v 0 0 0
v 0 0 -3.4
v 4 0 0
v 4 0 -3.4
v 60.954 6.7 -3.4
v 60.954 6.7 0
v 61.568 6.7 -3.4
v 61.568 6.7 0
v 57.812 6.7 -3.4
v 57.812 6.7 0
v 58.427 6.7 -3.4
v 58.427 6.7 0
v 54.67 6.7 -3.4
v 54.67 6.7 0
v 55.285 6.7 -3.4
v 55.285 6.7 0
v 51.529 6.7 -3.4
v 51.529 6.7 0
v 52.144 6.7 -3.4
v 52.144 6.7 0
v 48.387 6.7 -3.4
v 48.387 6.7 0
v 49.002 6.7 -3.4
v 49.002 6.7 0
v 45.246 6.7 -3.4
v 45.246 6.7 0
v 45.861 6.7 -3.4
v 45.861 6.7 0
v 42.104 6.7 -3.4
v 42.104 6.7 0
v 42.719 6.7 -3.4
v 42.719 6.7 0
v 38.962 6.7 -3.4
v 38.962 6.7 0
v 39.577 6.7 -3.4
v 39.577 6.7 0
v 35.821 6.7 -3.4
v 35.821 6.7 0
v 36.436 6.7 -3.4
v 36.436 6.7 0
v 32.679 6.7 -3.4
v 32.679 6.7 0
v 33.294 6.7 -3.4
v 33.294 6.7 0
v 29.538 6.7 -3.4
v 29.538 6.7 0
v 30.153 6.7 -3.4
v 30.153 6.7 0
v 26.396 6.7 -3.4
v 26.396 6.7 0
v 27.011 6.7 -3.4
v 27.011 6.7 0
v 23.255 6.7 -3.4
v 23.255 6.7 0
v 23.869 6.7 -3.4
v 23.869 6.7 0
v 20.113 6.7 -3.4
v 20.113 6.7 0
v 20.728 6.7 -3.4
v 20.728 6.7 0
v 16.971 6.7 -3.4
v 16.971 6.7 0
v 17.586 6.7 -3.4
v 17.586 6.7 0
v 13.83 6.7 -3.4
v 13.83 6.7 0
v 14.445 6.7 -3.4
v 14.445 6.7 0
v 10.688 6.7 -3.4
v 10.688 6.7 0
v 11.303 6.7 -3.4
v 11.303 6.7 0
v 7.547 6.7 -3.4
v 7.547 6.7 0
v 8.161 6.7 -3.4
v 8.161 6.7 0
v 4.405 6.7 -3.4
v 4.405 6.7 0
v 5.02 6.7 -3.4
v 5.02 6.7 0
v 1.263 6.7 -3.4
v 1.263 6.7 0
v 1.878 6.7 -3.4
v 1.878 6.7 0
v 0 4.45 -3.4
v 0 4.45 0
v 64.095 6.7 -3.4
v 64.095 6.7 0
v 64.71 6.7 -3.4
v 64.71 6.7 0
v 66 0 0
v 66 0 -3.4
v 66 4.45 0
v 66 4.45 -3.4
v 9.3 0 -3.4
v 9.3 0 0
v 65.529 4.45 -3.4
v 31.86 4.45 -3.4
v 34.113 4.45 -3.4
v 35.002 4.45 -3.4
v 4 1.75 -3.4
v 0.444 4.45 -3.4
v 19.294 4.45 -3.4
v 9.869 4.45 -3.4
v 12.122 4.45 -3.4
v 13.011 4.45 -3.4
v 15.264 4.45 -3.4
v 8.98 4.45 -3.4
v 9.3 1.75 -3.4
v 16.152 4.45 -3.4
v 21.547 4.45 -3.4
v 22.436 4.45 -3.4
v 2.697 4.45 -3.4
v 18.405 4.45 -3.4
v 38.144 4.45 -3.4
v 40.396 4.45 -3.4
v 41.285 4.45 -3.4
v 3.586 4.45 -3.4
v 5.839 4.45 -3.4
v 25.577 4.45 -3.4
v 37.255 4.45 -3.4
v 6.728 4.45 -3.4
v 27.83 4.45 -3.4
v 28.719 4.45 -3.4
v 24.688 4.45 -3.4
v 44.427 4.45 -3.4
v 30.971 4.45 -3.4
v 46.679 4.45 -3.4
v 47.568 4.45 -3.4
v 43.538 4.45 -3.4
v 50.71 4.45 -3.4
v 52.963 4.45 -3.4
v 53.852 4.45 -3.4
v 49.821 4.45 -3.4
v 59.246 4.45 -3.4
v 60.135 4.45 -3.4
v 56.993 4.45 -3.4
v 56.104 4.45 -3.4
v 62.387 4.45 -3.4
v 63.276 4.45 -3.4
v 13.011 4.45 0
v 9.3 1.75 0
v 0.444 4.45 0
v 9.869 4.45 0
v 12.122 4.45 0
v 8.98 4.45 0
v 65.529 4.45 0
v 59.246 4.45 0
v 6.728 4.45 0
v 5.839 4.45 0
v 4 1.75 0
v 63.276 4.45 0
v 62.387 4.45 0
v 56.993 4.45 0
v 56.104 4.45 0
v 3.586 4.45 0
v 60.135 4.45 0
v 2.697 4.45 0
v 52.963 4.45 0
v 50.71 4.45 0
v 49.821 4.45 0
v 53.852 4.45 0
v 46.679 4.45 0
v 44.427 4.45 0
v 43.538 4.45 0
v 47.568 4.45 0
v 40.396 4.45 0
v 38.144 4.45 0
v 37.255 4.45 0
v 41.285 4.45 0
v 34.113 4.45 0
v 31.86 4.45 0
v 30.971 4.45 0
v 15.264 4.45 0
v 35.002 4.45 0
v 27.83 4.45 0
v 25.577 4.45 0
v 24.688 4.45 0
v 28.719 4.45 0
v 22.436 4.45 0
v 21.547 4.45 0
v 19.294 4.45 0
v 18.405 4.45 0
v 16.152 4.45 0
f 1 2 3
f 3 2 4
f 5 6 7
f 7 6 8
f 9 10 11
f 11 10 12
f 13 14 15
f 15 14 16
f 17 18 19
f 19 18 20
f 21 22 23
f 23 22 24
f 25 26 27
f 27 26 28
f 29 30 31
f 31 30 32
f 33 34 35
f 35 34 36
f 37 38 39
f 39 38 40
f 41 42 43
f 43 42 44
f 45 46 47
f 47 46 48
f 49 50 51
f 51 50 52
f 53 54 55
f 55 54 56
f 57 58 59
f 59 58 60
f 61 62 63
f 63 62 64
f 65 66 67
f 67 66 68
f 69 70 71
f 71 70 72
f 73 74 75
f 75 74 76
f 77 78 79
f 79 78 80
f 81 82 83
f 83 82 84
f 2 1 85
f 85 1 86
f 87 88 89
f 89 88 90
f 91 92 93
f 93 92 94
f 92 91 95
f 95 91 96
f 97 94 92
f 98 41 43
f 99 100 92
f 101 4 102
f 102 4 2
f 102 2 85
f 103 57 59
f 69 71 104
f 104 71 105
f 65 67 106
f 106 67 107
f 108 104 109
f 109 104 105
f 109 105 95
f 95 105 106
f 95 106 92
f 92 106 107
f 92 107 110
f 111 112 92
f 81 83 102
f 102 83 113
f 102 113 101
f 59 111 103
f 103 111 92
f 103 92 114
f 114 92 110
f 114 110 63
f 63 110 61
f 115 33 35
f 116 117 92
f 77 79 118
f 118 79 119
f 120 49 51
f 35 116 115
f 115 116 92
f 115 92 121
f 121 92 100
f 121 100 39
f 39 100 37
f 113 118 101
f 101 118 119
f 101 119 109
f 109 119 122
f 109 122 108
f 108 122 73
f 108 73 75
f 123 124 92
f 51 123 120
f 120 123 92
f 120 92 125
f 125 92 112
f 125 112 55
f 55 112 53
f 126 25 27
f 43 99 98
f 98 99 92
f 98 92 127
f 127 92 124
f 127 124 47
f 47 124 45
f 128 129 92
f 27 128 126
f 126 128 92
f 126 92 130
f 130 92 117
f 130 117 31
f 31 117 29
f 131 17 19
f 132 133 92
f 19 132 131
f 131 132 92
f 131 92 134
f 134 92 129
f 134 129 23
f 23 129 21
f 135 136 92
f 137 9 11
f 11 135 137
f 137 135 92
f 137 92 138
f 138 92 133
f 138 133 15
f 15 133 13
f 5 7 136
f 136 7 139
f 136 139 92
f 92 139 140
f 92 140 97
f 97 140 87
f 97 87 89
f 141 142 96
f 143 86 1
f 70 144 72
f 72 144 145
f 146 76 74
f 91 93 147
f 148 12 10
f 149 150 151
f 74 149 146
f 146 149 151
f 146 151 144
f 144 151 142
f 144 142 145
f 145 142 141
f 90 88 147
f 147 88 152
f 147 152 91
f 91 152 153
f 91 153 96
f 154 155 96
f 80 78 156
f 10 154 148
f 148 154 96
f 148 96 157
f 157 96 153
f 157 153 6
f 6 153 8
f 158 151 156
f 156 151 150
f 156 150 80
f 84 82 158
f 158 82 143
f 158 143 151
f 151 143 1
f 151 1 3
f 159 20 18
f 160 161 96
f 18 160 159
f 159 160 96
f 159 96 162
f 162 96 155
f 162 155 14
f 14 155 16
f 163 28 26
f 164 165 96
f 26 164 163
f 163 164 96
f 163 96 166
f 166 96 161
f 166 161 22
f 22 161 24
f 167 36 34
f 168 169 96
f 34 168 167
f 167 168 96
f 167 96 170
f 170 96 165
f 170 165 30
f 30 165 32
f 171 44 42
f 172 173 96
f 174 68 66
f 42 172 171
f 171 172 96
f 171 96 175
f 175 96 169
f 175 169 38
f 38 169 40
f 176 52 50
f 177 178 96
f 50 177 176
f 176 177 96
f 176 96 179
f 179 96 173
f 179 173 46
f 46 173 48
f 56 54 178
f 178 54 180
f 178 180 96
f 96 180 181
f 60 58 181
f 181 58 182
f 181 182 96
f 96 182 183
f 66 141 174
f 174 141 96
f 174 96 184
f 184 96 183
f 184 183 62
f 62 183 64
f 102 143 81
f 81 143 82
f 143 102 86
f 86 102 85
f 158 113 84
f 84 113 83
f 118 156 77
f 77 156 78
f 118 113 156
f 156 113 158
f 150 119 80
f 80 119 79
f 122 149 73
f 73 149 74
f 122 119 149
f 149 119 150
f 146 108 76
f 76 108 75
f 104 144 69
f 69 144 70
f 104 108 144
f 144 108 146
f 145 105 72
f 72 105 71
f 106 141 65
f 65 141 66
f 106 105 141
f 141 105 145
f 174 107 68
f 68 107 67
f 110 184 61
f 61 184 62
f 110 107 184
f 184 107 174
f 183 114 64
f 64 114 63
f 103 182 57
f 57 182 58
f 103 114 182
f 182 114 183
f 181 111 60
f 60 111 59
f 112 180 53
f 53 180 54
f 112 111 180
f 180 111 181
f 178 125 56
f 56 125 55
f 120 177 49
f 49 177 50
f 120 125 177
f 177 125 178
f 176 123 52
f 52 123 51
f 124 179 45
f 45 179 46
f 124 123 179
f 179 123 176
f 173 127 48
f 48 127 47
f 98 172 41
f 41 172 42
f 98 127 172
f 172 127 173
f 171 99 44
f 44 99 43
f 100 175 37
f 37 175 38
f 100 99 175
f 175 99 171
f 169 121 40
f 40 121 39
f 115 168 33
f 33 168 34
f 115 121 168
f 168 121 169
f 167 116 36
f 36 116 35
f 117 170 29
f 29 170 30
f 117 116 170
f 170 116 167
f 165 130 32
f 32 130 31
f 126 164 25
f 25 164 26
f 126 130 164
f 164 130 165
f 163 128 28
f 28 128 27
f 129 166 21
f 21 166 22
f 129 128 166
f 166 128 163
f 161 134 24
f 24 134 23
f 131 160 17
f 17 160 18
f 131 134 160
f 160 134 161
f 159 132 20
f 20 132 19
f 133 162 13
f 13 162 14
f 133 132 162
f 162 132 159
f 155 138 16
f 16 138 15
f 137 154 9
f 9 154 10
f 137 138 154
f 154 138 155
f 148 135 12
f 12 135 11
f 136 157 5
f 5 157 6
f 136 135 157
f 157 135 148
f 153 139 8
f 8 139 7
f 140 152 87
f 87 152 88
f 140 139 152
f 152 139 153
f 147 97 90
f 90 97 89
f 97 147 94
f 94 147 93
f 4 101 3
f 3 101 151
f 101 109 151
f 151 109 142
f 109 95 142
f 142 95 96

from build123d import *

# Parameters (mm, degrees)
BLANKSKE_W        = 66
BLANKSKE_H        = 6.7
BLANK_DEPTH       = 3.4
TOOTHCUTSIM_DEPTH = 67.426274922
TEETHCUTS_COUNT   = 22
TEETHCUTS_PITCH   = 3.14159265
NOTCH_SKETCH_W    = 5.3
NOTCH_SKETCH_H    = 1.75
NOTCH_DEPTH       = 67.426274922


with BuildPart() as part:
    # BlankSke → Blank (new body)
    with BuildSketch(Plane.XY):
        with Locations((33, 3.35)):
            Rectangle(BLANKSKE_W, BLANKSKE_H)
    extrude(amount=-BLANK_DEPTH)

    # TooCutSkeSim → ToothCutSim (cut, through all)
    with BuildSketch(Plane.XY):
        Polygon((0.44443537, 4.45), (-0.44443537, 4.45), (-1.272613241, 6.7254), (1.272613241, 6.7254), align=None)
    toothcutsim = extrude(amount=-TOOTHCUTSIM_DEPTH, mode=Mode.SUBTRACT)

    # TeethCuts: ToothCutSim ×22
    with Locations(*[(i * TEETHCUTS_PITCH, 0, 0) for i in range(1, TEETHCUTS_COUNT)]):
        add(toothcutsim, mode=Mode.SUBTRACT)

    # notch-sketch → notch (cut, through all)
    with BuildSketch(Plane.XY):
        with Locations((6.65, 0.875)):
            Rectangle(NOTCH_SKETCH_W, NOTCH_SKETCH_H)
    extrude(amount=-NOTCH_DEPTH, mode=Mode.SUBTRACT)


solid = part.part
